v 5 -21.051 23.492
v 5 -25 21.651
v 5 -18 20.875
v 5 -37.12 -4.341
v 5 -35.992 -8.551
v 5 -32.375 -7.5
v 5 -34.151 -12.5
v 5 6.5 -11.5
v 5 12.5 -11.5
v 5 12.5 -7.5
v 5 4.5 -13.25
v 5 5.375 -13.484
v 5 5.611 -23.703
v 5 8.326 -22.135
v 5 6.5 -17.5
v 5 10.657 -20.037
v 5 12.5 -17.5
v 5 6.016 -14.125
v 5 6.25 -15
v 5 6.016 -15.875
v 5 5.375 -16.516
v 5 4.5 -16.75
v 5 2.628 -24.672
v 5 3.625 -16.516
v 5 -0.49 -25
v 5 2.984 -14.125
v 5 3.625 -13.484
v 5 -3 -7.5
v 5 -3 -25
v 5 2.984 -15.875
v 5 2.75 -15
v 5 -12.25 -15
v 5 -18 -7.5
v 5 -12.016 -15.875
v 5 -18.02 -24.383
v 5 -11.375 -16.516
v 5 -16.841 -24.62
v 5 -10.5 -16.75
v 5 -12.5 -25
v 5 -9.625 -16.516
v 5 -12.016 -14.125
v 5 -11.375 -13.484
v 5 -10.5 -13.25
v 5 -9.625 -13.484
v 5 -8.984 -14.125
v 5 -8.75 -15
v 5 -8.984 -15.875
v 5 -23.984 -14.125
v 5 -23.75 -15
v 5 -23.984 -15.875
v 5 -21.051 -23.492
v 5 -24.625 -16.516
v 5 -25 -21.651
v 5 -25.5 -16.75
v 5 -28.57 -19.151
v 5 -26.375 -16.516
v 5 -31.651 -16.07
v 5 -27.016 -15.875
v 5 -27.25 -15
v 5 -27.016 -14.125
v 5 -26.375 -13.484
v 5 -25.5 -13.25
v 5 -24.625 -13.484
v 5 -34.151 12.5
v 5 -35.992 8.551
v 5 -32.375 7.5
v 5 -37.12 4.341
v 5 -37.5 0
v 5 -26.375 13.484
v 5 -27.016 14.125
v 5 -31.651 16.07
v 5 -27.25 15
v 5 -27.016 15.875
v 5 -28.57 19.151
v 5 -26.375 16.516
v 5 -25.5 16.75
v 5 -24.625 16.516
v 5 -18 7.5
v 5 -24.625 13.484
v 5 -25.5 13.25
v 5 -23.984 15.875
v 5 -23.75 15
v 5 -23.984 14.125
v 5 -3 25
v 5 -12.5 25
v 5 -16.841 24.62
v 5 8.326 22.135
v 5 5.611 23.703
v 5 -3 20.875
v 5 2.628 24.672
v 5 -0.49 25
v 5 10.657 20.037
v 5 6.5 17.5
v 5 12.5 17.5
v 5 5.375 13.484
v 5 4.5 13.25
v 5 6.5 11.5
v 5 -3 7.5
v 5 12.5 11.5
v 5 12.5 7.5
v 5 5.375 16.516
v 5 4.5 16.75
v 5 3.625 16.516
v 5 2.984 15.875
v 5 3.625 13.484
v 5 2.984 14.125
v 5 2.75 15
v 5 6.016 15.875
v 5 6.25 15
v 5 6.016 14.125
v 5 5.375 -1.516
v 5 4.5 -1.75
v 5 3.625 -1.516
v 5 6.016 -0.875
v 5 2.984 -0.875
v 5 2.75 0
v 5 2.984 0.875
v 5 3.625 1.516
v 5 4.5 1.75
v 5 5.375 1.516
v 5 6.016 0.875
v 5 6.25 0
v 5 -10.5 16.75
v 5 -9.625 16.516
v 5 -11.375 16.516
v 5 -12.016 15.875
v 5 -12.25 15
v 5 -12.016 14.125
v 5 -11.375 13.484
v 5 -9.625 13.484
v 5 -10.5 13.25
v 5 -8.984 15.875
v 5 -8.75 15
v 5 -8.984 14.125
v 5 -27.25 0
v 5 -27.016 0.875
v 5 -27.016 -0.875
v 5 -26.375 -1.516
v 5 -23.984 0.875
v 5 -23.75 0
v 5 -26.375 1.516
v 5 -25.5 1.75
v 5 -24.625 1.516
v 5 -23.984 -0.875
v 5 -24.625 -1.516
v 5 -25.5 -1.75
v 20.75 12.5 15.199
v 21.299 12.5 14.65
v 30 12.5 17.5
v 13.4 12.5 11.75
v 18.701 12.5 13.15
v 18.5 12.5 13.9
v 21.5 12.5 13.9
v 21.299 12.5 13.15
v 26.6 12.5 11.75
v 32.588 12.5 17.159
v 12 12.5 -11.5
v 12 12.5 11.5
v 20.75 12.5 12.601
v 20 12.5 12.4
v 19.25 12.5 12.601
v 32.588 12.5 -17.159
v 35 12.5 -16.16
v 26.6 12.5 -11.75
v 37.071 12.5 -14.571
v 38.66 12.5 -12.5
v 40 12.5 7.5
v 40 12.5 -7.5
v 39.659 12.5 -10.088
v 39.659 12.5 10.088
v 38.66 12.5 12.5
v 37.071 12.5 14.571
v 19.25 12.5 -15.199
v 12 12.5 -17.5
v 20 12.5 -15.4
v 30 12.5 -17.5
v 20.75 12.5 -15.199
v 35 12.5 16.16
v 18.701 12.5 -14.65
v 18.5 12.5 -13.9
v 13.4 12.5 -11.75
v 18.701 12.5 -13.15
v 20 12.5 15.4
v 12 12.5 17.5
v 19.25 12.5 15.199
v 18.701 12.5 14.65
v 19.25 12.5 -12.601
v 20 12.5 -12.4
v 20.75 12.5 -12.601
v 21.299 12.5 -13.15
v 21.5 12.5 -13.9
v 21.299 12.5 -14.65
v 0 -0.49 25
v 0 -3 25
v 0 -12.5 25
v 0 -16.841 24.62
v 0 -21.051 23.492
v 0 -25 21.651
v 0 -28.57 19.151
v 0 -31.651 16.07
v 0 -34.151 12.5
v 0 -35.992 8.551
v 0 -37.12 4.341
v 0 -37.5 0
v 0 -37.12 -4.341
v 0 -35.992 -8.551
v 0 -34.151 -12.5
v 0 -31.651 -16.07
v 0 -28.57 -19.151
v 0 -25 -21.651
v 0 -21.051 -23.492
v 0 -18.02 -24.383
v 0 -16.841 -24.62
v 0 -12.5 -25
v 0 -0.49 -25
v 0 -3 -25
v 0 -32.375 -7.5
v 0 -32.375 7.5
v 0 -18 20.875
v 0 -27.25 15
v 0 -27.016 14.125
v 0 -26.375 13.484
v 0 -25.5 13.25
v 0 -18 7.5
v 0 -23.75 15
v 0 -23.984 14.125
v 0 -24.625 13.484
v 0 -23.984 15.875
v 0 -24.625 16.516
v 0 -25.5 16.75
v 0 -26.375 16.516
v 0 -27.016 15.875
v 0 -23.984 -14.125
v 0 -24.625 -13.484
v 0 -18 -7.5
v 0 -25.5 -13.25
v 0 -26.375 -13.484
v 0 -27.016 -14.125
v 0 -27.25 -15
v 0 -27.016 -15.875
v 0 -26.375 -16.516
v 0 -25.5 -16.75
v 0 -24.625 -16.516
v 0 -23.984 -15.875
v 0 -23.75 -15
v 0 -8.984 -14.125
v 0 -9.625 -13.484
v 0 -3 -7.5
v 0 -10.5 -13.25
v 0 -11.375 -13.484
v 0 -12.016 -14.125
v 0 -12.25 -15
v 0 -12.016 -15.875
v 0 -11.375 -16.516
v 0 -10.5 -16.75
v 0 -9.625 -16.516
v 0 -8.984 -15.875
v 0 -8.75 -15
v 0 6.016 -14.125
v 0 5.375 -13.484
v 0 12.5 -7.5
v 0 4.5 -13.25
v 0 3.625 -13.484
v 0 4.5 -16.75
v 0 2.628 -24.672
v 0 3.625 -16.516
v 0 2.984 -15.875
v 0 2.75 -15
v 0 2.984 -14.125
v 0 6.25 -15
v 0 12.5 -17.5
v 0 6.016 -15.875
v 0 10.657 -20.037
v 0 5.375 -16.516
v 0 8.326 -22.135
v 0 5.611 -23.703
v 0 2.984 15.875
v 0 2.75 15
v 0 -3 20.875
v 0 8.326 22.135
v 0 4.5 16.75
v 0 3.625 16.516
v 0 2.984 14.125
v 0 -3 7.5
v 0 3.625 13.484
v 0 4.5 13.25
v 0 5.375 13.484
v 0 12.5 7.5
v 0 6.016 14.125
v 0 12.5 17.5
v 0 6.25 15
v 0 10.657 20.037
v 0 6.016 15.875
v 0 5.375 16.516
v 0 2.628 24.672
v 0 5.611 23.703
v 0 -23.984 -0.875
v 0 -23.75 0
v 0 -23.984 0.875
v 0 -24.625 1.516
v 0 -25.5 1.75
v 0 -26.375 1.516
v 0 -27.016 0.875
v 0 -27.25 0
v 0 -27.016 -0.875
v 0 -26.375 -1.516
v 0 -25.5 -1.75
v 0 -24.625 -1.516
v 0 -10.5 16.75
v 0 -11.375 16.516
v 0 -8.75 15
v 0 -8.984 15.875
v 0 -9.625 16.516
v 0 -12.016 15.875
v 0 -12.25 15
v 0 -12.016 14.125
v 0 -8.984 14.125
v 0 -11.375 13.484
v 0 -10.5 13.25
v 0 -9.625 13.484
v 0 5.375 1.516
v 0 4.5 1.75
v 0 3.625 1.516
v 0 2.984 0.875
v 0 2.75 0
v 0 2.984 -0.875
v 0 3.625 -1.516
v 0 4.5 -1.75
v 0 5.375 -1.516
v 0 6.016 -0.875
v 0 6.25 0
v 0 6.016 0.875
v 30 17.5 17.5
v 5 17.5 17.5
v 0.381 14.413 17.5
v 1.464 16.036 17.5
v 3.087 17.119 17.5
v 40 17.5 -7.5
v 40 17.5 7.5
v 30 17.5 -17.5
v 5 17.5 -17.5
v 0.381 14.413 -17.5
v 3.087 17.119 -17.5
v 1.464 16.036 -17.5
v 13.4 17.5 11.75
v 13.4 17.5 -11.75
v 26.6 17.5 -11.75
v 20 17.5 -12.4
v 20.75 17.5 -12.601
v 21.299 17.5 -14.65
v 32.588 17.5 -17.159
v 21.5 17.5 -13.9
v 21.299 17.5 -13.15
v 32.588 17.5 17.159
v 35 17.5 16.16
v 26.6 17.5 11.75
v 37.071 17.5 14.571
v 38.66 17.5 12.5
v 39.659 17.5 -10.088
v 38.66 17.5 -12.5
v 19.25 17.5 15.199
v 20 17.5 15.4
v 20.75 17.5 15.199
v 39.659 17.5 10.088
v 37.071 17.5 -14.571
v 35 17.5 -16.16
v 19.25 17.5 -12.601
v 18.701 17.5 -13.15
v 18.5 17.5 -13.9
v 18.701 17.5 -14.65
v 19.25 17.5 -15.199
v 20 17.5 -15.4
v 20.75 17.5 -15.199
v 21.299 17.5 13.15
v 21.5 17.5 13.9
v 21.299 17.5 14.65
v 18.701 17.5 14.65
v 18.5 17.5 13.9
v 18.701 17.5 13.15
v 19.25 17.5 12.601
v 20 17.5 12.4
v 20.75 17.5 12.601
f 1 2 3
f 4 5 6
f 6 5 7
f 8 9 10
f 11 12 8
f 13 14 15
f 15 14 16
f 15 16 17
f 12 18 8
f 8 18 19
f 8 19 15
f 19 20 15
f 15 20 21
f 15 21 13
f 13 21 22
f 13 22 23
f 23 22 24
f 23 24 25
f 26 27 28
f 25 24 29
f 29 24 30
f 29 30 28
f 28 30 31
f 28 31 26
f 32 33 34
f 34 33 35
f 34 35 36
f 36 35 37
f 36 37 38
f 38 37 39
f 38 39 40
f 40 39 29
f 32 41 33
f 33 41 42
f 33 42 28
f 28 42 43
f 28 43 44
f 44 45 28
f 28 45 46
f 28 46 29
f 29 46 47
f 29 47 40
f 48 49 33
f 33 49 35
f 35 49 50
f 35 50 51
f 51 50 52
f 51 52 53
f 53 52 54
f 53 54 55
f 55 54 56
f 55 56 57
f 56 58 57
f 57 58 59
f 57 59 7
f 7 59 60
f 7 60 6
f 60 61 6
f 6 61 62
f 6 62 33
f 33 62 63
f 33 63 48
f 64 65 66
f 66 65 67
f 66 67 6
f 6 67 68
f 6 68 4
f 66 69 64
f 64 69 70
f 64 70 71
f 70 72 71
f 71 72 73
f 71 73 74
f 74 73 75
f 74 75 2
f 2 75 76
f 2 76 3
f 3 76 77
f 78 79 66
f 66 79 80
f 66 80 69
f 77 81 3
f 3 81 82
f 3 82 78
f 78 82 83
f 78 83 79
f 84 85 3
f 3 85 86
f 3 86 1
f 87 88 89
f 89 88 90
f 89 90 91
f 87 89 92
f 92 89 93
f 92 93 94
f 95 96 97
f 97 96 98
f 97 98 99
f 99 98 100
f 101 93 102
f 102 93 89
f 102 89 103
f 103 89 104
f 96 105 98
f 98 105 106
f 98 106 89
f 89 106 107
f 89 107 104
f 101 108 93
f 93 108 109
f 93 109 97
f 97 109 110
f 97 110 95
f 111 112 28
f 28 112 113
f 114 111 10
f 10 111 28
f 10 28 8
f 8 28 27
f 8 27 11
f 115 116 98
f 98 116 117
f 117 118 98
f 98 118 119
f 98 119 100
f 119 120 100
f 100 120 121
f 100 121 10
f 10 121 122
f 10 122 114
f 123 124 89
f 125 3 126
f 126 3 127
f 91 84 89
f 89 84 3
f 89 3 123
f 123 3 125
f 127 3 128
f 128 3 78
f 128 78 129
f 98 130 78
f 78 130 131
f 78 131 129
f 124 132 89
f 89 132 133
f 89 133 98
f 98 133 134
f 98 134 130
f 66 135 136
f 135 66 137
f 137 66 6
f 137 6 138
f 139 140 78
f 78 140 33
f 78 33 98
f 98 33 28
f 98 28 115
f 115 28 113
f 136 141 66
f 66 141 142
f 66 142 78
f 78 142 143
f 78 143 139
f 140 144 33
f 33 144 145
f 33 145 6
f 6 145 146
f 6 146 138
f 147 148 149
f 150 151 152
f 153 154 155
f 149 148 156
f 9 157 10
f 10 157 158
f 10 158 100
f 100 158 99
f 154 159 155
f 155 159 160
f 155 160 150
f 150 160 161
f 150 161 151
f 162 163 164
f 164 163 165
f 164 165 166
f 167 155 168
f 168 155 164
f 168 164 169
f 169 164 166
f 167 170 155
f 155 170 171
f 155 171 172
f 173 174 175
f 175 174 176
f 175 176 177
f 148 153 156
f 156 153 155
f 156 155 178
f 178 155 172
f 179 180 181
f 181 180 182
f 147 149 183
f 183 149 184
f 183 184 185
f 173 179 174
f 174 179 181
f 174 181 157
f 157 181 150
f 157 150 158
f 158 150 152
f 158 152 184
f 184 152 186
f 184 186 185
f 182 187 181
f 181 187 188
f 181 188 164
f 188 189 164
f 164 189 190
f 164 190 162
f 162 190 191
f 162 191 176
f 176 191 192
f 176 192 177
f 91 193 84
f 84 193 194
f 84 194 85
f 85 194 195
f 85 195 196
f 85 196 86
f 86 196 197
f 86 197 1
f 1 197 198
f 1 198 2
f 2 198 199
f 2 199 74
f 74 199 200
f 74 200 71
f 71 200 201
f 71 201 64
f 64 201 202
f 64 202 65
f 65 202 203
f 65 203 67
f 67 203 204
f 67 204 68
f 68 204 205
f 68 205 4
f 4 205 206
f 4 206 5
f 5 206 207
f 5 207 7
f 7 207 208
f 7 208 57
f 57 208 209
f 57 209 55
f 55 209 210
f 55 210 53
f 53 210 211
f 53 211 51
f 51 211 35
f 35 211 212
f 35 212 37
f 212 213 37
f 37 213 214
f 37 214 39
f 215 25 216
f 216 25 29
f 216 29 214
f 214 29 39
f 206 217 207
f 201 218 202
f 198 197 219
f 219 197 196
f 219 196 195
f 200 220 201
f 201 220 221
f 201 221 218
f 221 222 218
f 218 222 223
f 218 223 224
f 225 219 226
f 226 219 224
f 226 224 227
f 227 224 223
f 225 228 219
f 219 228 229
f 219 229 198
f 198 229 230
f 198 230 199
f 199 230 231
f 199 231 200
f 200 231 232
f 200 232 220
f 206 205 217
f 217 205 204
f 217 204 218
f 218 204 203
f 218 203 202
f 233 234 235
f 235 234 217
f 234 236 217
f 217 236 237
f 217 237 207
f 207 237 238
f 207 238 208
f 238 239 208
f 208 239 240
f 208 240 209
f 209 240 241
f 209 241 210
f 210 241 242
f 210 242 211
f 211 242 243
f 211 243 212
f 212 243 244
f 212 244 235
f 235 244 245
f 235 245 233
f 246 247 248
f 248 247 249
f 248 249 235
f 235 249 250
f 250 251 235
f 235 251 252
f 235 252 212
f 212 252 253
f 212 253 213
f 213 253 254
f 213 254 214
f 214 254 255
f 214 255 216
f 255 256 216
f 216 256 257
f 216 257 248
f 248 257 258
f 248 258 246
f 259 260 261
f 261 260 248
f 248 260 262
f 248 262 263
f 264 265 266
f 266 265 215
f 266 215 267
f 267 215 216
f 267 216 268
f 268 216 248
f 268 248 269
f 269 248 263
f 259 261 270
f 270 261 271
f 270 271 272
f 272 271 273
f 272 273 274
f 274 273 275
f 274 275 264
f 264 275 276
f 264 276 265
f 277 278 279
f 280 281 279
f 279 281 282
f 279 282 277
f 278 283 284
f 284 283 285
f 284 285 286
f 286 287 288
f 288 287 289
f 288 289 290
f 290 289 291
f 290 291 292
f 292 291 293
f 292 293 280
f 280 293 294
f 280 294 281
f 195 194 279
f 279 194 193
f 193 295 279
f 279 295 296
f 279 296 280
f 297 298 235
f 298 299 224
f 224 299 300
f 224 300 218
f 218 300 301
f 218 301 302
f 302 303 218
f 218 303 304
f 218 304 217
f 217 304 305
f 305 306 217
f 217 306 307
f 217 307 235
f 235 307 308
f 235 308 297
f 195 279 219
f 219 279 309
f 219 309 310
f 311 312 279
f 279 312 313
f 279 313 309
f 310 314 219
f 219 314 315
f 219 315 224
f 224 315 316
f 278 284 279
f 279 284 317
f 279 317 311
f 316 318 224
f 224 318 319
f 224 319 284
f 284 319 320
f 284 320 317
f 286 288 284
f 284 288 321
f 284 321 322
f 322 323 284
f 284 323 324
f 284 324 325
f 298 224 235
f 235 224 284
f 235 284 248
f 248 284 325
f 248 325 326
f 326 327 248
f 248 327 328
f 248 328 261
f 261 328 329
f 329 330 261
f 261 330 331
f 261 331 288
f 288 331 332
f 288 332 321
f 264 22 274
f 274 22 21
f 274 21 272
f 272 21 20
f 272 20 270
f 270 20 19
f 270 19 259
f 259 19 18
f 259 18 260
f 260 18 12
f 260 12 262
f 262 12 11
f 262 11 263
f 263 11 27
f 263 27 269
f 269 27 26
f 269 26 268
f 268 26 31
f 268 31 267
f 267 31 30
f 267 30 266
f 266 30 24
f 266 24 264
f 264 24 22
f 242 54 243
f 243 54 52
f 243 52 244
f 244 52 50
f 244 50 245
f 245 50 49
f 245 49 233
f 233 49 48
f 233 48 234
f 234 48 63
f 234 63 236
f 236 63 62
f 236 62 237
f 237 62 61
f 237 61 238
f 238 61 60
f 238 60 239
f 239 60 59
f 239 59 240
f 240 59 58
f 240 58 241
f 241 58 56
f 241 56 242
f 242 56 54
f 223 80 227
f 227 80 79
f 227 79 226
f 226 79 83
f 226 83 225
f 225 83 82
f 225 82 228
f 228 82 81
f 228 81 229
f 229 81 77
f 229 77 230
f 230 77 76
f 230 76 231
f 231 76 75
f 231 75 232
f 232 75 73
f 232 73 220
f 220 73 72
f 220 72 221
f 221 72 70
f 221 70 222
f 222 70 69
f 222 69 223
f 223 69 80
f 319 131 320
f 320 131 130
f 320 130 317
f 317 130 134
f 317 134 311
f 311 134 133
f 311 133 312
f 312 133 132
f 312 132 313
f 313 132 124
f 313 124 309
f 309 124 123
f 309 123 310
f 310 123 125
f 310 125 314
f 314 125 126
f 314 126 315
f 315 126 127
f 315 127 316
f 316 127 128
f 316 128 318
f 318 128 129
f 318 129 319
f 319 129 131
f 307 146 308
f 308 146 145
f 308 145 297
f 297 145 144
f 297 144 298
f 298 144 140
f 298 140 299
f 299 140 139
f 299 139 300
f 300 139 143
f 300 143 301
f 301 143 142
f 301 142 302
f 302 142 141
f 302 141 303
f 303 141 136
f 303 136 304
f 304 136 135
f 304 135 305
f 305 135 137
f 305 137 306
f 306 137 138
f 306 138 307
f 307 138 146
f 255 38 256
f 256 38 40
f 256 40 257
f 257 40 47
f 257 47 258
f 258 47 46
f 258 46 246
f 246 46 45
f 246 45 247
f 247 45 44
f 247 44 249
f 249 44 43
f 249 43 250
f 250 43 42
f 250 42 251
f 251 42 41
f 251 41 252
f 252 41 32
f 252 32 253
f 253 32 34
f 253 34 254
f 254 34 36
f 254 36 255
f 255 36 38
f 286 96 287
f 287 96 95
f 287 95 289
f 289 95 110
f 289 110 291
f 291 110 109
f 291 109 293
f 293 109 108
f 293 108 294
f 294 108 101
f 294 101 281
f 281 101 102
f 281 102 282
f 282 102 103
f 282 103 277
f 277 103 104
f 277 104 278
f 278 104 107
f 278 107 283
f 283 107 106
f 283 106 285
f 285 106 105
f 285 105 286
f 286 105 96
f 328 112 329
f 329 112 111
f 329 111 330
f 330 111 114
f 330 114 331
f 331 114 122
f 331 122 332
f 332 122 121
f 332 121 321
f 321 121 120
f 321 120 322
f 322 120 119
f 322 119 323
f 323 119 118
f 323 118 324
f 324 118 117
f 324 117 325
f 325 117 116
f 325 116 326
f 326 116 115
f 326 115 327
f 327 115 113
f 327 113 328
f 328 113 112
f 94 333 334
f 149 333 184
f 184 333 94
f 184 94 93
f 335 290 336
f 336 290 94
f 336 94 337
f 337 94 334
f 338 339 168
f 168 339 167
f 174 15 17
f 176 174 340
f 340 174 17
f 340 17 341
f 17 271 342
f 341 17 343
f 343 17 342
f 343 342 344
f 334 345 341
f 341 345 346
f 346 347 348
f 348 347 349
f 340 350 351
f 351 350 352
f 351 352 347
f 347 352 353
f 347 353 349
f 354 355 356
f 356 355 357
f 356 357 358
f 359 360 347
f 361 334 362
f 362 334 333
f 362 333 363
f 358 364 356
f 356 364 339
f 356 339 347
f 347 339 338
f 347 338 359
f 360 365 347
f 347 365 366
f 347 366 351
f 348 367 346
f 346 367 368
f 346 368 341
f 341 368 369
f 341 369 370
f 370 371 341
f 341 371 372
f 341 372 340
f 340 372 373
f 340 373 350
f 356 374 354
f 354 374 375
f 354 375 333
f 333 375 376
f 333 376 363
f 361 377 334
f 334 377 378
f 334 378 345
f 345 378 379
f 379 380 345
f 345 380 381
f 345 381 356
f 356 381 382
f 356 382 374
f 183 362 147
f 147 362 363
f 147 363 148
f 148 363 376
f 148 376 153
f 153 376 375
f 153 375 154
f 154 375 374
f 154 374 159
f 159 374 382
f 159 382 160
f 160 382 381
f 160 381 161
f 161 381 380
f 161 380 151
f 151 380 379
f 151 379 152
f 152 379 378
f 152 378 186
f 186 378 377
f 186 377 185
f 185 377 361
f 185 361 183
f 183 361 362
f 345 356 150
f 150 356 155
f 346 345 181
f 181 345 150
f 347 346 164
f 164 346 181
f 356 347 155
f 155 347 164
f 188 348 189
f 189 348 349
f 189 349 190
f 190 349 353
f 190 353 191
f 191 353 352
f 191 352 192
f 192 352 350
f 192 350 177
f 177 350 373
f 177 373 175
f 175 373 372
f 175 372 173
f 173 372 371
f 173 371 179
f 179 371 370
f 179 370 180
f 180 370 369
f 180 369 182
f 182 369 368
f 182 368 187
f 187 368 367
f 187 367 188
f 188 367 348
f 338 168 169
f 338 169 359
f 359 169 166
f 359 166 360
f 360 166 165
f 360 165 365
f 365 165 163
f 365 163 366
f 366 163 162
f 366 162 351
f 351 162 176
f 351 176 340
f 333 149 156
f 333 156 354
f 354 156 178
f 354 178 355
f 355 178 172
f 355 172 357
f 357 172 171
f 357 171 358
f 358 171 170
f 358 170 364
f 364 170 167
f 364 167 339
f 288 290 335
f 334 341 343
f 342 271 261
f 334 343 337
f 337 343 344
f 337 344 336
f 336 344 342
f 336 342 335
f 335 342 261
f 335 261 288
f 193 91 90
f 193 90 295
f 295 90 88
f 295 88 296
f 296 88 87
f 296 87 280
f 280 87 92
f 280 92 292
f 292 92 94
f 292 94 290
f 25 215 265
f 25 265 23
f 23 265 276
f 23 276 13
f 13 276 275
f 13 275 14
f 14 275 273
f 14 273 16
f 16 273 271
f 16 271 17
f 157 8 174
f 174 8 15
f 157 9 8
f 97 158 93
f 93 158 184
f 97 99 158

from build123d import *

# Parameters (mm, degrees)
BOSS_EXTRUDE1_DEPTH = 5
CUT_EXTRUDE1_REACH  = 47.346
SKETCH2_R           = 1.75
SKETCH4_W           = 40
SKETCH4_H           = 35
BOSS_EXTRUDE2_DEPTH = 5
CUT_EXTRUDE2_REACH  = 69.454
SKETCH3_R           = 1.5
SKETCH3_W           = 23.5
SKETCH3_H           = 13.2
FILLET1_R           = 10
FILLET2_R           = 5
FILLET4_R           = 15
BOSS_EXTRUDE3_DEPTH = 6


with BuildPart() as part:
    # Sketch1 → Boss-Extrude1 (new body)
    with BuildSketch(Plane(origin=(0, 0, 0), x_dir=(0, 0, -1), z_dir=(1, 0, 0))):
        with BuildLine():
            ThreePointArc((-25, -12.5), (0, -37.5), (25, -12.5))
            Line((25, -12.5), (25, 12.5))
            Line((25, 12.5), (-25, 12.5))
            Line((-25, 12.5), (-25, -12.5))
        make_face()
    extrude(amount=BOSS_EXTRUDE1_DEPTH)

    # Sketch2 → Cut-Extrude1 (cut, up to next)
    with BuildSketch(Plane(origin=(5, 0, 0), x_dir=(0, 0, -1), z_dir=(1, 0, 0)), mode=Mode.PRIVATE) as cut_extrude1_sk1:
        with Locations((-15, -25.5)):
            Circle(SKETCH2_R)
    cut_extrude1_tool1 = extrude(cut_extrude1_sk1.sketch, amount=-CUT_EXTRUDE1_REACH, mode=Mode.PRIVATE) & part.part
    # Sketch2 → Cut-Extrude1 (cut, up to next)
    with BuildSketch(Plane(origin=(5, 0, 0), x_dir=(0, 0, -1), z_dir=(1, 0, 0)), mode=Mode.PRIVATE) as cut_extrude1_sk2:
        with Locations((15, -25.5)):
            Circle(SKETCH2_R)
    cut_extrude1_tool2 = extrude(cut_extrude1_sk2.sketch, amount=-CUT_EXTRUDE1_REACH, mode=Mode.PRIVATE) & part.part
    # Sketch2 → Cut-Extrude1 (cut, up to next)
    with BuildSketch(Plane(origin=(5, 0, 0), x_dir=(0, 0, -1), z_dir=(1, 0, 0)), mode=Mode.PRIVATE) as cut_extrude1_sk3:
        with Locations((-15, 4.5)):
            Circle(SKETCH2_R)
    cut_extrude1_tool3 = extrude(cut_extrude1_sk3.sketch, amount=-CUT_EXTRUDE1_REACH, mode=Mode.PRIVATE) & part.part
    # Sketch2 → Cut-Extrude1 (cut, up to next)
    with BuildSketch(Plane(origin=(5, 0, 0), x_dir=(0, 0, -1), z_dir=(1, 0, 0)), mode=Mode.PRIVATE) as cut_extrude1_sk4:
        with Locations((0, 4.5)):
            Circle(SKETCH2_R)
    cut_extrude1_tool4 = extrude(cut_extrude1_sk4.sketch, amount=-CUT_EXTRUDE1_REACH, mode=Mode.PRIVATE) & part.part
    # Sketch2 → Cut-Extrude1 (cut, up to next)
    with BuildSketch(Plane(origin=(5, 0, 0), x_dir=(0, 0, -1), z_dir=(1, 0, 0)), mode=Mode.PRIVATE) as cut_extrude1_sk5:
        with Locations((15, 4.5)):
            Circle(SKETCH2_R)
    cut_extrude1_tool5 = extrude(cut_extrude1_sk5.sketch, amount=-CUT_EXTRUDE1_REACH, mode=Mode.PRIVATE) & part.part
    # Sketch2 → Cut-Extrude1 (cut, up to next)
    with BuildSketch(Plane(origin=(5, 0, 0), x_dir=(0, 0, -1), z_dir=(1, 0, 0)), mode=Mode.PRIVATE) as cut_extrude1_sk6:
        with Locations((0, -25.5)):
            Circle(SKETCH2_R)
    cut_extrude1_tool6 = extrude(cut_extrude1_sk6.sketch, amount=-CUT_EXTRUDE1_REACH, mode=Mode.PRIVATE) & part.part
    # Sketch2 → Cut-Extrude1 (cut, up to next)
    with BuildSketch(Plane(origin=(5, 0, 0), x_dir=(0, 0, -1), z_dir=(1, 0, 0)), mode=Mode.PRIVATE) as cut_extrude1_sk7:
        with Locations((-15, -10.5)):
            Circle(SKETCH2_R)
    cut_extrude1_tool7 = extrude(cut_extrude1_sk7.sketch, amount=-CUT_EXTRUDE1_REACH, mode=Mode.PRIVATE) & part.part
    # Sketch2 → Cut-Extrude1 (cut, up to next)
    with BuildSketch(Plane(origin=(5, 0, 0), x_dir=(0, 0, -1), z_dir=(1, 0, 0)), mode=Mode.PRIVATE) as cut_extrude1_sk8:
        with Locations((15, -10.5)):
            Circle(SKETCH2_R)
    cut_extrude1_tool8 = extrude(cut_extrude1_sk8.sketch, amount=-CUT_EXTRUDE1_REACH, mode=Mode.PRIVATE) & part.part
    add(cut_extrude1_tool1.solids().sort_by_distance((5, -25.5, 15))[0], mode=Mode.SUBTRACT)
    add(cut_extrude1_tool2.solids().sort_by_distance((5, -25.5, -15))[0], mode=Mode.SUBTRACT)
    add(cut_extrude1_tool3.solids().sort_by_distance((5, 4.5, 15))[0], mode=Mode.SUBTRACT)
    add(cut_extrude1_tool4.solids().sort_by_distance((5, 4.5, 0))[0], mode=Mode.SUBTRACT)
    add(cut_extrude1_tool5.solids().sort_by_distance((5, 4.5, -15))[0], mode=Mode.SUBTRACT)
    add(cut_extrude1_tool6.solids().sort_by_distance((5, -25.5, 0))[0], mode=Mode.SUBTRACT)
    add(cut_extrude1_tool7.solids().sort_by_distance((5, -10.5, 15))[0], mode=Mode.SUBTRACT)
    add(cut_extrude1_tool8.solids().sort_by_distance((5, -10.5, -15))[0], mode=Mode.SUBTRACT)

    # Sketch4 → Boss-Extrude2 (add)
    with BuildSketch(Plane(origin=(0, 12.5, 0), x_dir=(1, 0, 0), z_dir=(0, 1, 0))):
        with Locations((20, 0)):
            Rectangle(SKETCH4_W, SKETCH4_H)
    extrude(amount=BOSS_EXTRUDE2_DEPTH)

    # Sketch3 → Cut-Extrude2 (cut, up to next)
    with BuildSketch(Plane(origin=(30, 17.5, 0), x_dir=(0, 0, -1), z_dir=(0, 1, 0)), mode=Mode.PRIVATE) as cut_extrude2_sk1:
        with Locations(Location((13.9, 10, 0), (0, 0, 180))):
            Circle(SKETCH3_R)
    cut_extrude2_tool1 = extrude(cut_extrude2_sk1.sketch, amount=-CUT_EXTRUDE2_REACH, mode=Mode.PRIVATE) & part.part
    # Sketch3 → Cut-Extrude2 (cut, up to next)
    with BuildSketch(Plane(origin=(30, 17.5, 0), x_dir=(0, 0, -1), z_dir=(0, 1, 0)), mode=Mode.PRIVATE) as cut_extrude2_sk2:
        with Locations(Location((-13.9, 10, 0), (0, 0, 180))):
            Circle(SKETCH3_R)
    cut_extrude2_tool2 = extrude(cut_extrude2_sk2.sketch, amount=-CUT_EXTRUDE2_REACH, mode=Mode.PRIVATE) & part.part
    # Sketch3 → Cut-Extrude2 (cut, up to next)
    with BuildSketch(Plane(origin=(30, 17.5, 0), x_dir=(0, 0, -1), z_dir=(0, 1, 0)), mode=Mode.PRIVATE) as cut_extrude2_sk3:
        with Locations((0, 10)):
            Rectangle(SKETCH3_W, SKETCH3_H)
    cut_extrude2_tool3 = extrude(cut_extrude2_sk3.sketch, amount=-CUT_EXTRUDE2_REACH, mode=Mode.PRIVATE) & part.part
    add(cut_extrude2_tool1.solids().sort_by_distance((20, 17.5, -13.9))[0], mode=Mode.SUBTRACT)
    add(cut_extrude2_tool2.solids().sort_by_distance((20, 17.5, 13.9))[0], mode=Mode.SUBTRACT)
    add(cut_extrude2_tool3.solids().sort_by_distance((20, 17.5, 0))[0], mode=Mode.SUBTRACT)

    # Fillet1
    fillet1_edges = [part.edges().sort_by_distance(p)[0] for p in [
        (40, 15, 17.5),
        (40, 15, -17.5),
    ]]
    fillet(fillet1_edges, radius=FILLET1_R)

    # Fillet2
    fillet2_edges = [part.edges().sort_by_distance(p)[0] for p in [
        (0, 17.5, 0),
    ]]
    fillet(fillet2_edges, radius=FILLET2_R)

    # Fillet4
    # the kernel refuses this fillet: 15 mm, written as the material it takes off along each edge
    with BuildSketch(Plane(origin=(-32.475952642, 12.5, 25), x_dir=(0, 0, -1), z_dir=(1, 0, 0))) as fillet4_piece_1:
        with BuildLine():
            CenterArc((15, -12.990381057), FILLET4_R, 120, 60)
            Line((0, -12.990381057), (-0.3, -12.990381057))
            Line((-0.3, -12.990381057), (-0.3, 0))
            Line((-0.3, 0), (0, 0.3))
            ThreePointArc((0, 0.3), (3.75, 0.3), (7.35, 0.259807621))
            Line((7.35, 0.259807621), (7.5, 0))
        make_face()
    extrude(amount=69.951905284, mode=Mode.SUBTRACT)
    with BuildSketch(Plane(origin=(-32.475952642, 12.5, -25), x_dir=(0, 0, 1), z_dir=(1, 0, 0))) as fillet4_piece_2:
        with BuildLine():
            CenterArc((15, 12.990381057), FILLET4_R, 180, 60)
            Line((0, 12.990381057), (-0.3, 12.990381057))
            Line((-0.3, 12.990381057), (-0.3, 0))
            Line((-0.3, 0), (0, -0.3))
            ThreePointArc((0, -0.3), (3.75, -0.3), (7.35, -0.259807621))
            Line((7.35, -0.259807621), (7.5, 0))
        make_face()
    extrude(amount=69.951905284, mode=Mode.SUBTRACT)

    # Sketch5 → Boss-Extrude3 (add)
    with BuildSketch(Plane(origin=(0, 0, -17.5), x_dir=(-1, 0, 0), z_dir=(0, 0, -1))):
        Polygon((-5, 6.5), (-5, 12.5), (-12, 12.5), align=None)
    boss_extrude3 = extrude(amount=-BOSS_EXTRUDE3_DEPTH)

    # Mirror1: Boss-Extrude3 across plane
    add(boss_extrude3.mirror(Plane.XY))


solid = part.part
